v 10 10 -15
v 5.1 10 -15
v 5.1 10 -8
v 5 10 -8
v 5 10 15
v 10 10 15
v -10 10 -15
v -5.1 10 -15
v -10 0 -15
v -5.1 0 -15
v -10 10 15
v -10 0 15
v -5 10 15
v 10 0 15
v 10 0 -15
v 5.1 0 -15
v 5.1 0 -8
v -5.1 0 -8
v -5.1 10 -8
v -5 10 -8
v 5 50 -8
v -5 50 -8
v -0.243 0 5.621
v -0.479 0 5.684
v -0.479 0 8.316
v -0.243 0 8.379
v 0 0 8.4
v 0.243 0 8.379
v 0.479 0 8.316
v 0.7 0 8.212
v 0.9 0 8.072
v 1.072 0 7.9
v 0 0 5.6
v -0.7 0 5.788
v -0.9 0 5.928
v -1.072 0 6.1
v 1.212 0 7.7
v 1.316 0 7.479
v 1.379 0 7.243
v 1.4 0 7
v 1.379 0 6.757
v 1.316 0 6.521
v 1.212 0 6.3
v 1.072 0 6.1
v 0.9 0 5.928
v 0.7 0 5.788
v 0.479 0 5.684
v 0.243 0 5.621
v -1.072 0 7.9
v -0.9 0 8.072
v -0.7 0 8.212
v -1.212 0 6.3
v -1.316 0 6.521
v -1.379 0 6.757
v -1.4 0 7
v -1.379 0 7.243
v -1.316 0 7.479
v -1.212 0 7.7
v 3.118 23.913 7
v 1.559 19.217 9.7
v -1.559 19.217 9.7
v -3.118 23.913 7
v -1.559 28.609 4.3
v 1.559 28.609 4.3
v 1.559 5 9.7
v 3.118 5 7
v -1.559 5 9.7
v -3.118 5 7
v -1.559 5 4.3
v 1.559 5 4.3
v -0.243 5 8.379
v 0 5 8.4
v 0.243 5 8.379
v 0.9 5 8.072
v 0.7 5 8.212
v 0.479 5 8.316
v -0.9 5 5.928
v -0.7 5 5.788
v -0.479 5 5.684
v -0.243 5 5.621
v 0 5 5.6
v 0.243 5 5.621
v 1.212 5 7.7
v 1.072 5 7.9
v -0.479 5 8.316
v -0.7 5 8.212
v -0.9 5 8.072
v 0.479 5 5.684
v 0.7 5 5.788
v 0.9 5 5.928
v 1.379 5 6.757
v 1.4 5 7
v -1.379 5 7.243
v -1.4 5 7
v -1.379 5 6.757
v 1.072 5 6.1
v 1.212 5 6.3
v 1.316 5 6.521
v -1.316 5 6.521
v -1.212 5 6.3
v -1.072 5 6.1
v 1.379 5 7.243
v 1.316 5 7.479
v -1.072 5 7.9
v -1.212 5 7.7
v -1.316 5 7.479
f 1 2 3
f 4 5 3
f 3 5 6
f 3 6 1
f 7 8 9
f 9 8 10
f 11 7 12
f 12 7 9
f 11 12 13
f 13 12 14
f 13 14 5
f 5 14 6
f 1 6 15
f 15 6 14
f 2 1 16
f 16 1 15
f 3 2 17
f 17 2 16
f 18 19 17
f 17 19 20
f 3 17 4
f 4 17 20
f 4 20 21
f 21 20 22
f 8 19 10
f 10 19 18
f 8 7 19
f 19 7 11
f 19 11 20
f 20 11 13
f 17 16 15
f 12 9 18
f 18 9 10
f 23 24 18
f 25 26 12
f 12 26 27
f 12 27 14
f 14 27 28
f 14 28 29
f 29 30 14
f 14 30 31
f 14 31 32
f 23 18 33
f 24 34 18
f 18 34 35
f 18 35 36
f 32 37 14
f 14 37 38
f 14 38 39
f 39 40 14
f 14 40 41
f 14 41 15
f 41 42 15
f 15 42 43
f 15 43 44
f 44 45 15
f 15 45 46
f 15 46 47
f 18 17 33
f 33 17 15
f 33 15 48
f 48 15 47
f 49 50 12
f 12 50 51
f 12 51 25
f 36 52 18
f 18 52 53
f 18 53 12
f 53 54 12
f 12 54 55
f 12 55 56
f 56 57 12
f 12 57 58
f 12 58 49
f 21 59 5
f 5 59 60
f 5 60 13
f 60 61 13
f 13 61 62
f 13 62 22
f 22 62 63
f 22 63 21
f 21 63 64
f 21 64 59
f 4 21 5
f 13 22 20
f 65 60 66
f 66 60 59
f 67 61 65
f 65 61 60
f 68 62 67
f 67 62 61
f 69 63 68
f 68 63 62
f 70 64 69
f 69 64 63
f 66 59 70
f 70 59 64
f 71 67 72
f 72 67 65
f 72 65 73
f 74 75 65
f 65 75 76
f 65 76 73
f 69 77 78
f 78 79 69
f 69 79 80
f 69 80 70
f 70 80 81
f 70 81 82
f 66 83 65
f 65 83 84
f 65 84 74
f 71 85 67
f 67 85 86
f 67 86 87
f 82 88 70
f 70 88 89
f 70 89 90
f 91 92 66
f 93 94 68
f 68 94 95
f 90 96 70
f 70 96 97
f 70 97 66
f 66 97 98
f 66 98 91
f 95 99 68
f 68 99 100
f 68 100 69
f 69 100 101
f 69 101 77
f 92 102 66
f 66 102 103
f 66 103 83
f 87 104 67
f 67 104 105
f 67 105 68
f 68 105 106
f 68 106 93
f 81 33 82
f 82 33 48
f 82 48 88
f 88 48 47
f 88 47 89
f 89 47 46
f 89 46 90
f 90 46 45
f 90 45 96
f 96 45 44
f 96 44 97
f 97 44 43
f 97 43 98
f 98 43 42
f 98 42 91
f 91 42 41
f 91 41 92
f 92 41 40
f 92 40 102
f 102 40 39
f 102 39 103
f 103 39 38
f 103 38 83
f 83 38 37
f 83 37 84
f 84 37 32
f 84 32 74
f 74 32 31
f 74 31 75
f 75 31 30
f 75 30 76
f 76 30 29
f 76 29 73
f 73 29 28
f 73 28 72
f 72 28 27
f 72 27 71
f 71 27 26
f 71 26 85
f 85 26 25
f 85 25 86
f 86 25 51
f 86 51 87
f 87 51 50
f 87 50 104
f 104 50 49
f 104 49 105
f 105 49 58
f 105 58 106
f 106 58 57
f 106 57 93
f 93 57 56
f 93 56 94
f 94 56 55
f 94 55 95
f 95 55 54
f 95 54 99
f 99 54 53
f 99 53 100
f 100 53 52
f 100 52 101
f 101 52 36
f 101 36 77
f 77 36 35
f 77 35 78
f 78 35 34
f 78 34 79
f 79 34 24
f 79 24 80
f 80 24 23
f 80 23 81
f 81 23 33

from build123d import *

# Parameters (mm, degrees)
BOSS_EXTRUDE1_DEPTH = 10
BOSS_EXTRUDE2_DEPTH = 5
CUT_EXTRUDE1_START  = 30
CUT_EXTRUDE1_DEPTH  = 25
CUT_EXTRUDE2_REACH  = 55.151
SKETCH4_R           = 1.4


with BuildPart() as part:
    # Sketch1 → Boss-Extrude1 (new body)
    with BuildSketch(Plane(origin=(0, 0, 0), x_dir=(1, 0, 0), z_dir=(0, 1, 0))):
        Polygon((-5.1, 15), (-5.1, 8), (5.1, 8), (5.1, 15), (10, 15), (10, -15), (-10, -15), (-10, 15), align=None)
    extrude(amount=BOSS_EXTRUDE1_DEPTH)

    # Sketch2 → Boss-Extrude2 (add, symmetric)
    with BuildSketch(Plane(origin=(0, 0, 0), x_dir=(0, 0, -1), z_dir=(1, 0, 0))):
        Polygon((-15, 10), (8, 50), (8, 10), align=None)
    extrude(amount=BOSS_EXTRUDE2_DEPTH, both=True)

    # Sketch3 → Cut-Extrude1 (cut)
    with BuildSketch(Plane(origin=(0, 0, 0), x_dir=(1, 0, 0), z_dir=(0, 1, 0)).offset(CUT_EXTRUDE1_START)):
        Polygon((3.117691454, -7), (1.558845727, -4.3), (-1.558845727, -4.3), (-3.117691454, -7), (-1.558845727, -9.7), (1.558845727, -9.7), align=None)
    extrude(amount=-CUT_EXTRUDE1_DEPTH, mode=Mode.SUBTRACT)

    # Sketch4 → Cut-Extrude2 (cut, up to next)
    with BuildSketch(Plane(origin=(0, 0, 0), x_dir=(1, 0, 0), z_dir=(0, 1, 0)), mode=Mode.PRIVATE) as cut_extrude2_sk1:
        with Locations(Location((0, -7, 0), (0, 0, 270))):
            Circle(SKETCH4_R)
    cut_extrude2_tool1 = extrude(cut_extrude2_sk1.sketch, amount=CUT_EXTRUDE2_REACH, mode=Mode.PRIVATE) & part.part
    add(cut_extrude2_tool1.solids().sort_by_distance((0, 0, 7))[0], mode=Mode.SUBTRACT)


solid = part.part
